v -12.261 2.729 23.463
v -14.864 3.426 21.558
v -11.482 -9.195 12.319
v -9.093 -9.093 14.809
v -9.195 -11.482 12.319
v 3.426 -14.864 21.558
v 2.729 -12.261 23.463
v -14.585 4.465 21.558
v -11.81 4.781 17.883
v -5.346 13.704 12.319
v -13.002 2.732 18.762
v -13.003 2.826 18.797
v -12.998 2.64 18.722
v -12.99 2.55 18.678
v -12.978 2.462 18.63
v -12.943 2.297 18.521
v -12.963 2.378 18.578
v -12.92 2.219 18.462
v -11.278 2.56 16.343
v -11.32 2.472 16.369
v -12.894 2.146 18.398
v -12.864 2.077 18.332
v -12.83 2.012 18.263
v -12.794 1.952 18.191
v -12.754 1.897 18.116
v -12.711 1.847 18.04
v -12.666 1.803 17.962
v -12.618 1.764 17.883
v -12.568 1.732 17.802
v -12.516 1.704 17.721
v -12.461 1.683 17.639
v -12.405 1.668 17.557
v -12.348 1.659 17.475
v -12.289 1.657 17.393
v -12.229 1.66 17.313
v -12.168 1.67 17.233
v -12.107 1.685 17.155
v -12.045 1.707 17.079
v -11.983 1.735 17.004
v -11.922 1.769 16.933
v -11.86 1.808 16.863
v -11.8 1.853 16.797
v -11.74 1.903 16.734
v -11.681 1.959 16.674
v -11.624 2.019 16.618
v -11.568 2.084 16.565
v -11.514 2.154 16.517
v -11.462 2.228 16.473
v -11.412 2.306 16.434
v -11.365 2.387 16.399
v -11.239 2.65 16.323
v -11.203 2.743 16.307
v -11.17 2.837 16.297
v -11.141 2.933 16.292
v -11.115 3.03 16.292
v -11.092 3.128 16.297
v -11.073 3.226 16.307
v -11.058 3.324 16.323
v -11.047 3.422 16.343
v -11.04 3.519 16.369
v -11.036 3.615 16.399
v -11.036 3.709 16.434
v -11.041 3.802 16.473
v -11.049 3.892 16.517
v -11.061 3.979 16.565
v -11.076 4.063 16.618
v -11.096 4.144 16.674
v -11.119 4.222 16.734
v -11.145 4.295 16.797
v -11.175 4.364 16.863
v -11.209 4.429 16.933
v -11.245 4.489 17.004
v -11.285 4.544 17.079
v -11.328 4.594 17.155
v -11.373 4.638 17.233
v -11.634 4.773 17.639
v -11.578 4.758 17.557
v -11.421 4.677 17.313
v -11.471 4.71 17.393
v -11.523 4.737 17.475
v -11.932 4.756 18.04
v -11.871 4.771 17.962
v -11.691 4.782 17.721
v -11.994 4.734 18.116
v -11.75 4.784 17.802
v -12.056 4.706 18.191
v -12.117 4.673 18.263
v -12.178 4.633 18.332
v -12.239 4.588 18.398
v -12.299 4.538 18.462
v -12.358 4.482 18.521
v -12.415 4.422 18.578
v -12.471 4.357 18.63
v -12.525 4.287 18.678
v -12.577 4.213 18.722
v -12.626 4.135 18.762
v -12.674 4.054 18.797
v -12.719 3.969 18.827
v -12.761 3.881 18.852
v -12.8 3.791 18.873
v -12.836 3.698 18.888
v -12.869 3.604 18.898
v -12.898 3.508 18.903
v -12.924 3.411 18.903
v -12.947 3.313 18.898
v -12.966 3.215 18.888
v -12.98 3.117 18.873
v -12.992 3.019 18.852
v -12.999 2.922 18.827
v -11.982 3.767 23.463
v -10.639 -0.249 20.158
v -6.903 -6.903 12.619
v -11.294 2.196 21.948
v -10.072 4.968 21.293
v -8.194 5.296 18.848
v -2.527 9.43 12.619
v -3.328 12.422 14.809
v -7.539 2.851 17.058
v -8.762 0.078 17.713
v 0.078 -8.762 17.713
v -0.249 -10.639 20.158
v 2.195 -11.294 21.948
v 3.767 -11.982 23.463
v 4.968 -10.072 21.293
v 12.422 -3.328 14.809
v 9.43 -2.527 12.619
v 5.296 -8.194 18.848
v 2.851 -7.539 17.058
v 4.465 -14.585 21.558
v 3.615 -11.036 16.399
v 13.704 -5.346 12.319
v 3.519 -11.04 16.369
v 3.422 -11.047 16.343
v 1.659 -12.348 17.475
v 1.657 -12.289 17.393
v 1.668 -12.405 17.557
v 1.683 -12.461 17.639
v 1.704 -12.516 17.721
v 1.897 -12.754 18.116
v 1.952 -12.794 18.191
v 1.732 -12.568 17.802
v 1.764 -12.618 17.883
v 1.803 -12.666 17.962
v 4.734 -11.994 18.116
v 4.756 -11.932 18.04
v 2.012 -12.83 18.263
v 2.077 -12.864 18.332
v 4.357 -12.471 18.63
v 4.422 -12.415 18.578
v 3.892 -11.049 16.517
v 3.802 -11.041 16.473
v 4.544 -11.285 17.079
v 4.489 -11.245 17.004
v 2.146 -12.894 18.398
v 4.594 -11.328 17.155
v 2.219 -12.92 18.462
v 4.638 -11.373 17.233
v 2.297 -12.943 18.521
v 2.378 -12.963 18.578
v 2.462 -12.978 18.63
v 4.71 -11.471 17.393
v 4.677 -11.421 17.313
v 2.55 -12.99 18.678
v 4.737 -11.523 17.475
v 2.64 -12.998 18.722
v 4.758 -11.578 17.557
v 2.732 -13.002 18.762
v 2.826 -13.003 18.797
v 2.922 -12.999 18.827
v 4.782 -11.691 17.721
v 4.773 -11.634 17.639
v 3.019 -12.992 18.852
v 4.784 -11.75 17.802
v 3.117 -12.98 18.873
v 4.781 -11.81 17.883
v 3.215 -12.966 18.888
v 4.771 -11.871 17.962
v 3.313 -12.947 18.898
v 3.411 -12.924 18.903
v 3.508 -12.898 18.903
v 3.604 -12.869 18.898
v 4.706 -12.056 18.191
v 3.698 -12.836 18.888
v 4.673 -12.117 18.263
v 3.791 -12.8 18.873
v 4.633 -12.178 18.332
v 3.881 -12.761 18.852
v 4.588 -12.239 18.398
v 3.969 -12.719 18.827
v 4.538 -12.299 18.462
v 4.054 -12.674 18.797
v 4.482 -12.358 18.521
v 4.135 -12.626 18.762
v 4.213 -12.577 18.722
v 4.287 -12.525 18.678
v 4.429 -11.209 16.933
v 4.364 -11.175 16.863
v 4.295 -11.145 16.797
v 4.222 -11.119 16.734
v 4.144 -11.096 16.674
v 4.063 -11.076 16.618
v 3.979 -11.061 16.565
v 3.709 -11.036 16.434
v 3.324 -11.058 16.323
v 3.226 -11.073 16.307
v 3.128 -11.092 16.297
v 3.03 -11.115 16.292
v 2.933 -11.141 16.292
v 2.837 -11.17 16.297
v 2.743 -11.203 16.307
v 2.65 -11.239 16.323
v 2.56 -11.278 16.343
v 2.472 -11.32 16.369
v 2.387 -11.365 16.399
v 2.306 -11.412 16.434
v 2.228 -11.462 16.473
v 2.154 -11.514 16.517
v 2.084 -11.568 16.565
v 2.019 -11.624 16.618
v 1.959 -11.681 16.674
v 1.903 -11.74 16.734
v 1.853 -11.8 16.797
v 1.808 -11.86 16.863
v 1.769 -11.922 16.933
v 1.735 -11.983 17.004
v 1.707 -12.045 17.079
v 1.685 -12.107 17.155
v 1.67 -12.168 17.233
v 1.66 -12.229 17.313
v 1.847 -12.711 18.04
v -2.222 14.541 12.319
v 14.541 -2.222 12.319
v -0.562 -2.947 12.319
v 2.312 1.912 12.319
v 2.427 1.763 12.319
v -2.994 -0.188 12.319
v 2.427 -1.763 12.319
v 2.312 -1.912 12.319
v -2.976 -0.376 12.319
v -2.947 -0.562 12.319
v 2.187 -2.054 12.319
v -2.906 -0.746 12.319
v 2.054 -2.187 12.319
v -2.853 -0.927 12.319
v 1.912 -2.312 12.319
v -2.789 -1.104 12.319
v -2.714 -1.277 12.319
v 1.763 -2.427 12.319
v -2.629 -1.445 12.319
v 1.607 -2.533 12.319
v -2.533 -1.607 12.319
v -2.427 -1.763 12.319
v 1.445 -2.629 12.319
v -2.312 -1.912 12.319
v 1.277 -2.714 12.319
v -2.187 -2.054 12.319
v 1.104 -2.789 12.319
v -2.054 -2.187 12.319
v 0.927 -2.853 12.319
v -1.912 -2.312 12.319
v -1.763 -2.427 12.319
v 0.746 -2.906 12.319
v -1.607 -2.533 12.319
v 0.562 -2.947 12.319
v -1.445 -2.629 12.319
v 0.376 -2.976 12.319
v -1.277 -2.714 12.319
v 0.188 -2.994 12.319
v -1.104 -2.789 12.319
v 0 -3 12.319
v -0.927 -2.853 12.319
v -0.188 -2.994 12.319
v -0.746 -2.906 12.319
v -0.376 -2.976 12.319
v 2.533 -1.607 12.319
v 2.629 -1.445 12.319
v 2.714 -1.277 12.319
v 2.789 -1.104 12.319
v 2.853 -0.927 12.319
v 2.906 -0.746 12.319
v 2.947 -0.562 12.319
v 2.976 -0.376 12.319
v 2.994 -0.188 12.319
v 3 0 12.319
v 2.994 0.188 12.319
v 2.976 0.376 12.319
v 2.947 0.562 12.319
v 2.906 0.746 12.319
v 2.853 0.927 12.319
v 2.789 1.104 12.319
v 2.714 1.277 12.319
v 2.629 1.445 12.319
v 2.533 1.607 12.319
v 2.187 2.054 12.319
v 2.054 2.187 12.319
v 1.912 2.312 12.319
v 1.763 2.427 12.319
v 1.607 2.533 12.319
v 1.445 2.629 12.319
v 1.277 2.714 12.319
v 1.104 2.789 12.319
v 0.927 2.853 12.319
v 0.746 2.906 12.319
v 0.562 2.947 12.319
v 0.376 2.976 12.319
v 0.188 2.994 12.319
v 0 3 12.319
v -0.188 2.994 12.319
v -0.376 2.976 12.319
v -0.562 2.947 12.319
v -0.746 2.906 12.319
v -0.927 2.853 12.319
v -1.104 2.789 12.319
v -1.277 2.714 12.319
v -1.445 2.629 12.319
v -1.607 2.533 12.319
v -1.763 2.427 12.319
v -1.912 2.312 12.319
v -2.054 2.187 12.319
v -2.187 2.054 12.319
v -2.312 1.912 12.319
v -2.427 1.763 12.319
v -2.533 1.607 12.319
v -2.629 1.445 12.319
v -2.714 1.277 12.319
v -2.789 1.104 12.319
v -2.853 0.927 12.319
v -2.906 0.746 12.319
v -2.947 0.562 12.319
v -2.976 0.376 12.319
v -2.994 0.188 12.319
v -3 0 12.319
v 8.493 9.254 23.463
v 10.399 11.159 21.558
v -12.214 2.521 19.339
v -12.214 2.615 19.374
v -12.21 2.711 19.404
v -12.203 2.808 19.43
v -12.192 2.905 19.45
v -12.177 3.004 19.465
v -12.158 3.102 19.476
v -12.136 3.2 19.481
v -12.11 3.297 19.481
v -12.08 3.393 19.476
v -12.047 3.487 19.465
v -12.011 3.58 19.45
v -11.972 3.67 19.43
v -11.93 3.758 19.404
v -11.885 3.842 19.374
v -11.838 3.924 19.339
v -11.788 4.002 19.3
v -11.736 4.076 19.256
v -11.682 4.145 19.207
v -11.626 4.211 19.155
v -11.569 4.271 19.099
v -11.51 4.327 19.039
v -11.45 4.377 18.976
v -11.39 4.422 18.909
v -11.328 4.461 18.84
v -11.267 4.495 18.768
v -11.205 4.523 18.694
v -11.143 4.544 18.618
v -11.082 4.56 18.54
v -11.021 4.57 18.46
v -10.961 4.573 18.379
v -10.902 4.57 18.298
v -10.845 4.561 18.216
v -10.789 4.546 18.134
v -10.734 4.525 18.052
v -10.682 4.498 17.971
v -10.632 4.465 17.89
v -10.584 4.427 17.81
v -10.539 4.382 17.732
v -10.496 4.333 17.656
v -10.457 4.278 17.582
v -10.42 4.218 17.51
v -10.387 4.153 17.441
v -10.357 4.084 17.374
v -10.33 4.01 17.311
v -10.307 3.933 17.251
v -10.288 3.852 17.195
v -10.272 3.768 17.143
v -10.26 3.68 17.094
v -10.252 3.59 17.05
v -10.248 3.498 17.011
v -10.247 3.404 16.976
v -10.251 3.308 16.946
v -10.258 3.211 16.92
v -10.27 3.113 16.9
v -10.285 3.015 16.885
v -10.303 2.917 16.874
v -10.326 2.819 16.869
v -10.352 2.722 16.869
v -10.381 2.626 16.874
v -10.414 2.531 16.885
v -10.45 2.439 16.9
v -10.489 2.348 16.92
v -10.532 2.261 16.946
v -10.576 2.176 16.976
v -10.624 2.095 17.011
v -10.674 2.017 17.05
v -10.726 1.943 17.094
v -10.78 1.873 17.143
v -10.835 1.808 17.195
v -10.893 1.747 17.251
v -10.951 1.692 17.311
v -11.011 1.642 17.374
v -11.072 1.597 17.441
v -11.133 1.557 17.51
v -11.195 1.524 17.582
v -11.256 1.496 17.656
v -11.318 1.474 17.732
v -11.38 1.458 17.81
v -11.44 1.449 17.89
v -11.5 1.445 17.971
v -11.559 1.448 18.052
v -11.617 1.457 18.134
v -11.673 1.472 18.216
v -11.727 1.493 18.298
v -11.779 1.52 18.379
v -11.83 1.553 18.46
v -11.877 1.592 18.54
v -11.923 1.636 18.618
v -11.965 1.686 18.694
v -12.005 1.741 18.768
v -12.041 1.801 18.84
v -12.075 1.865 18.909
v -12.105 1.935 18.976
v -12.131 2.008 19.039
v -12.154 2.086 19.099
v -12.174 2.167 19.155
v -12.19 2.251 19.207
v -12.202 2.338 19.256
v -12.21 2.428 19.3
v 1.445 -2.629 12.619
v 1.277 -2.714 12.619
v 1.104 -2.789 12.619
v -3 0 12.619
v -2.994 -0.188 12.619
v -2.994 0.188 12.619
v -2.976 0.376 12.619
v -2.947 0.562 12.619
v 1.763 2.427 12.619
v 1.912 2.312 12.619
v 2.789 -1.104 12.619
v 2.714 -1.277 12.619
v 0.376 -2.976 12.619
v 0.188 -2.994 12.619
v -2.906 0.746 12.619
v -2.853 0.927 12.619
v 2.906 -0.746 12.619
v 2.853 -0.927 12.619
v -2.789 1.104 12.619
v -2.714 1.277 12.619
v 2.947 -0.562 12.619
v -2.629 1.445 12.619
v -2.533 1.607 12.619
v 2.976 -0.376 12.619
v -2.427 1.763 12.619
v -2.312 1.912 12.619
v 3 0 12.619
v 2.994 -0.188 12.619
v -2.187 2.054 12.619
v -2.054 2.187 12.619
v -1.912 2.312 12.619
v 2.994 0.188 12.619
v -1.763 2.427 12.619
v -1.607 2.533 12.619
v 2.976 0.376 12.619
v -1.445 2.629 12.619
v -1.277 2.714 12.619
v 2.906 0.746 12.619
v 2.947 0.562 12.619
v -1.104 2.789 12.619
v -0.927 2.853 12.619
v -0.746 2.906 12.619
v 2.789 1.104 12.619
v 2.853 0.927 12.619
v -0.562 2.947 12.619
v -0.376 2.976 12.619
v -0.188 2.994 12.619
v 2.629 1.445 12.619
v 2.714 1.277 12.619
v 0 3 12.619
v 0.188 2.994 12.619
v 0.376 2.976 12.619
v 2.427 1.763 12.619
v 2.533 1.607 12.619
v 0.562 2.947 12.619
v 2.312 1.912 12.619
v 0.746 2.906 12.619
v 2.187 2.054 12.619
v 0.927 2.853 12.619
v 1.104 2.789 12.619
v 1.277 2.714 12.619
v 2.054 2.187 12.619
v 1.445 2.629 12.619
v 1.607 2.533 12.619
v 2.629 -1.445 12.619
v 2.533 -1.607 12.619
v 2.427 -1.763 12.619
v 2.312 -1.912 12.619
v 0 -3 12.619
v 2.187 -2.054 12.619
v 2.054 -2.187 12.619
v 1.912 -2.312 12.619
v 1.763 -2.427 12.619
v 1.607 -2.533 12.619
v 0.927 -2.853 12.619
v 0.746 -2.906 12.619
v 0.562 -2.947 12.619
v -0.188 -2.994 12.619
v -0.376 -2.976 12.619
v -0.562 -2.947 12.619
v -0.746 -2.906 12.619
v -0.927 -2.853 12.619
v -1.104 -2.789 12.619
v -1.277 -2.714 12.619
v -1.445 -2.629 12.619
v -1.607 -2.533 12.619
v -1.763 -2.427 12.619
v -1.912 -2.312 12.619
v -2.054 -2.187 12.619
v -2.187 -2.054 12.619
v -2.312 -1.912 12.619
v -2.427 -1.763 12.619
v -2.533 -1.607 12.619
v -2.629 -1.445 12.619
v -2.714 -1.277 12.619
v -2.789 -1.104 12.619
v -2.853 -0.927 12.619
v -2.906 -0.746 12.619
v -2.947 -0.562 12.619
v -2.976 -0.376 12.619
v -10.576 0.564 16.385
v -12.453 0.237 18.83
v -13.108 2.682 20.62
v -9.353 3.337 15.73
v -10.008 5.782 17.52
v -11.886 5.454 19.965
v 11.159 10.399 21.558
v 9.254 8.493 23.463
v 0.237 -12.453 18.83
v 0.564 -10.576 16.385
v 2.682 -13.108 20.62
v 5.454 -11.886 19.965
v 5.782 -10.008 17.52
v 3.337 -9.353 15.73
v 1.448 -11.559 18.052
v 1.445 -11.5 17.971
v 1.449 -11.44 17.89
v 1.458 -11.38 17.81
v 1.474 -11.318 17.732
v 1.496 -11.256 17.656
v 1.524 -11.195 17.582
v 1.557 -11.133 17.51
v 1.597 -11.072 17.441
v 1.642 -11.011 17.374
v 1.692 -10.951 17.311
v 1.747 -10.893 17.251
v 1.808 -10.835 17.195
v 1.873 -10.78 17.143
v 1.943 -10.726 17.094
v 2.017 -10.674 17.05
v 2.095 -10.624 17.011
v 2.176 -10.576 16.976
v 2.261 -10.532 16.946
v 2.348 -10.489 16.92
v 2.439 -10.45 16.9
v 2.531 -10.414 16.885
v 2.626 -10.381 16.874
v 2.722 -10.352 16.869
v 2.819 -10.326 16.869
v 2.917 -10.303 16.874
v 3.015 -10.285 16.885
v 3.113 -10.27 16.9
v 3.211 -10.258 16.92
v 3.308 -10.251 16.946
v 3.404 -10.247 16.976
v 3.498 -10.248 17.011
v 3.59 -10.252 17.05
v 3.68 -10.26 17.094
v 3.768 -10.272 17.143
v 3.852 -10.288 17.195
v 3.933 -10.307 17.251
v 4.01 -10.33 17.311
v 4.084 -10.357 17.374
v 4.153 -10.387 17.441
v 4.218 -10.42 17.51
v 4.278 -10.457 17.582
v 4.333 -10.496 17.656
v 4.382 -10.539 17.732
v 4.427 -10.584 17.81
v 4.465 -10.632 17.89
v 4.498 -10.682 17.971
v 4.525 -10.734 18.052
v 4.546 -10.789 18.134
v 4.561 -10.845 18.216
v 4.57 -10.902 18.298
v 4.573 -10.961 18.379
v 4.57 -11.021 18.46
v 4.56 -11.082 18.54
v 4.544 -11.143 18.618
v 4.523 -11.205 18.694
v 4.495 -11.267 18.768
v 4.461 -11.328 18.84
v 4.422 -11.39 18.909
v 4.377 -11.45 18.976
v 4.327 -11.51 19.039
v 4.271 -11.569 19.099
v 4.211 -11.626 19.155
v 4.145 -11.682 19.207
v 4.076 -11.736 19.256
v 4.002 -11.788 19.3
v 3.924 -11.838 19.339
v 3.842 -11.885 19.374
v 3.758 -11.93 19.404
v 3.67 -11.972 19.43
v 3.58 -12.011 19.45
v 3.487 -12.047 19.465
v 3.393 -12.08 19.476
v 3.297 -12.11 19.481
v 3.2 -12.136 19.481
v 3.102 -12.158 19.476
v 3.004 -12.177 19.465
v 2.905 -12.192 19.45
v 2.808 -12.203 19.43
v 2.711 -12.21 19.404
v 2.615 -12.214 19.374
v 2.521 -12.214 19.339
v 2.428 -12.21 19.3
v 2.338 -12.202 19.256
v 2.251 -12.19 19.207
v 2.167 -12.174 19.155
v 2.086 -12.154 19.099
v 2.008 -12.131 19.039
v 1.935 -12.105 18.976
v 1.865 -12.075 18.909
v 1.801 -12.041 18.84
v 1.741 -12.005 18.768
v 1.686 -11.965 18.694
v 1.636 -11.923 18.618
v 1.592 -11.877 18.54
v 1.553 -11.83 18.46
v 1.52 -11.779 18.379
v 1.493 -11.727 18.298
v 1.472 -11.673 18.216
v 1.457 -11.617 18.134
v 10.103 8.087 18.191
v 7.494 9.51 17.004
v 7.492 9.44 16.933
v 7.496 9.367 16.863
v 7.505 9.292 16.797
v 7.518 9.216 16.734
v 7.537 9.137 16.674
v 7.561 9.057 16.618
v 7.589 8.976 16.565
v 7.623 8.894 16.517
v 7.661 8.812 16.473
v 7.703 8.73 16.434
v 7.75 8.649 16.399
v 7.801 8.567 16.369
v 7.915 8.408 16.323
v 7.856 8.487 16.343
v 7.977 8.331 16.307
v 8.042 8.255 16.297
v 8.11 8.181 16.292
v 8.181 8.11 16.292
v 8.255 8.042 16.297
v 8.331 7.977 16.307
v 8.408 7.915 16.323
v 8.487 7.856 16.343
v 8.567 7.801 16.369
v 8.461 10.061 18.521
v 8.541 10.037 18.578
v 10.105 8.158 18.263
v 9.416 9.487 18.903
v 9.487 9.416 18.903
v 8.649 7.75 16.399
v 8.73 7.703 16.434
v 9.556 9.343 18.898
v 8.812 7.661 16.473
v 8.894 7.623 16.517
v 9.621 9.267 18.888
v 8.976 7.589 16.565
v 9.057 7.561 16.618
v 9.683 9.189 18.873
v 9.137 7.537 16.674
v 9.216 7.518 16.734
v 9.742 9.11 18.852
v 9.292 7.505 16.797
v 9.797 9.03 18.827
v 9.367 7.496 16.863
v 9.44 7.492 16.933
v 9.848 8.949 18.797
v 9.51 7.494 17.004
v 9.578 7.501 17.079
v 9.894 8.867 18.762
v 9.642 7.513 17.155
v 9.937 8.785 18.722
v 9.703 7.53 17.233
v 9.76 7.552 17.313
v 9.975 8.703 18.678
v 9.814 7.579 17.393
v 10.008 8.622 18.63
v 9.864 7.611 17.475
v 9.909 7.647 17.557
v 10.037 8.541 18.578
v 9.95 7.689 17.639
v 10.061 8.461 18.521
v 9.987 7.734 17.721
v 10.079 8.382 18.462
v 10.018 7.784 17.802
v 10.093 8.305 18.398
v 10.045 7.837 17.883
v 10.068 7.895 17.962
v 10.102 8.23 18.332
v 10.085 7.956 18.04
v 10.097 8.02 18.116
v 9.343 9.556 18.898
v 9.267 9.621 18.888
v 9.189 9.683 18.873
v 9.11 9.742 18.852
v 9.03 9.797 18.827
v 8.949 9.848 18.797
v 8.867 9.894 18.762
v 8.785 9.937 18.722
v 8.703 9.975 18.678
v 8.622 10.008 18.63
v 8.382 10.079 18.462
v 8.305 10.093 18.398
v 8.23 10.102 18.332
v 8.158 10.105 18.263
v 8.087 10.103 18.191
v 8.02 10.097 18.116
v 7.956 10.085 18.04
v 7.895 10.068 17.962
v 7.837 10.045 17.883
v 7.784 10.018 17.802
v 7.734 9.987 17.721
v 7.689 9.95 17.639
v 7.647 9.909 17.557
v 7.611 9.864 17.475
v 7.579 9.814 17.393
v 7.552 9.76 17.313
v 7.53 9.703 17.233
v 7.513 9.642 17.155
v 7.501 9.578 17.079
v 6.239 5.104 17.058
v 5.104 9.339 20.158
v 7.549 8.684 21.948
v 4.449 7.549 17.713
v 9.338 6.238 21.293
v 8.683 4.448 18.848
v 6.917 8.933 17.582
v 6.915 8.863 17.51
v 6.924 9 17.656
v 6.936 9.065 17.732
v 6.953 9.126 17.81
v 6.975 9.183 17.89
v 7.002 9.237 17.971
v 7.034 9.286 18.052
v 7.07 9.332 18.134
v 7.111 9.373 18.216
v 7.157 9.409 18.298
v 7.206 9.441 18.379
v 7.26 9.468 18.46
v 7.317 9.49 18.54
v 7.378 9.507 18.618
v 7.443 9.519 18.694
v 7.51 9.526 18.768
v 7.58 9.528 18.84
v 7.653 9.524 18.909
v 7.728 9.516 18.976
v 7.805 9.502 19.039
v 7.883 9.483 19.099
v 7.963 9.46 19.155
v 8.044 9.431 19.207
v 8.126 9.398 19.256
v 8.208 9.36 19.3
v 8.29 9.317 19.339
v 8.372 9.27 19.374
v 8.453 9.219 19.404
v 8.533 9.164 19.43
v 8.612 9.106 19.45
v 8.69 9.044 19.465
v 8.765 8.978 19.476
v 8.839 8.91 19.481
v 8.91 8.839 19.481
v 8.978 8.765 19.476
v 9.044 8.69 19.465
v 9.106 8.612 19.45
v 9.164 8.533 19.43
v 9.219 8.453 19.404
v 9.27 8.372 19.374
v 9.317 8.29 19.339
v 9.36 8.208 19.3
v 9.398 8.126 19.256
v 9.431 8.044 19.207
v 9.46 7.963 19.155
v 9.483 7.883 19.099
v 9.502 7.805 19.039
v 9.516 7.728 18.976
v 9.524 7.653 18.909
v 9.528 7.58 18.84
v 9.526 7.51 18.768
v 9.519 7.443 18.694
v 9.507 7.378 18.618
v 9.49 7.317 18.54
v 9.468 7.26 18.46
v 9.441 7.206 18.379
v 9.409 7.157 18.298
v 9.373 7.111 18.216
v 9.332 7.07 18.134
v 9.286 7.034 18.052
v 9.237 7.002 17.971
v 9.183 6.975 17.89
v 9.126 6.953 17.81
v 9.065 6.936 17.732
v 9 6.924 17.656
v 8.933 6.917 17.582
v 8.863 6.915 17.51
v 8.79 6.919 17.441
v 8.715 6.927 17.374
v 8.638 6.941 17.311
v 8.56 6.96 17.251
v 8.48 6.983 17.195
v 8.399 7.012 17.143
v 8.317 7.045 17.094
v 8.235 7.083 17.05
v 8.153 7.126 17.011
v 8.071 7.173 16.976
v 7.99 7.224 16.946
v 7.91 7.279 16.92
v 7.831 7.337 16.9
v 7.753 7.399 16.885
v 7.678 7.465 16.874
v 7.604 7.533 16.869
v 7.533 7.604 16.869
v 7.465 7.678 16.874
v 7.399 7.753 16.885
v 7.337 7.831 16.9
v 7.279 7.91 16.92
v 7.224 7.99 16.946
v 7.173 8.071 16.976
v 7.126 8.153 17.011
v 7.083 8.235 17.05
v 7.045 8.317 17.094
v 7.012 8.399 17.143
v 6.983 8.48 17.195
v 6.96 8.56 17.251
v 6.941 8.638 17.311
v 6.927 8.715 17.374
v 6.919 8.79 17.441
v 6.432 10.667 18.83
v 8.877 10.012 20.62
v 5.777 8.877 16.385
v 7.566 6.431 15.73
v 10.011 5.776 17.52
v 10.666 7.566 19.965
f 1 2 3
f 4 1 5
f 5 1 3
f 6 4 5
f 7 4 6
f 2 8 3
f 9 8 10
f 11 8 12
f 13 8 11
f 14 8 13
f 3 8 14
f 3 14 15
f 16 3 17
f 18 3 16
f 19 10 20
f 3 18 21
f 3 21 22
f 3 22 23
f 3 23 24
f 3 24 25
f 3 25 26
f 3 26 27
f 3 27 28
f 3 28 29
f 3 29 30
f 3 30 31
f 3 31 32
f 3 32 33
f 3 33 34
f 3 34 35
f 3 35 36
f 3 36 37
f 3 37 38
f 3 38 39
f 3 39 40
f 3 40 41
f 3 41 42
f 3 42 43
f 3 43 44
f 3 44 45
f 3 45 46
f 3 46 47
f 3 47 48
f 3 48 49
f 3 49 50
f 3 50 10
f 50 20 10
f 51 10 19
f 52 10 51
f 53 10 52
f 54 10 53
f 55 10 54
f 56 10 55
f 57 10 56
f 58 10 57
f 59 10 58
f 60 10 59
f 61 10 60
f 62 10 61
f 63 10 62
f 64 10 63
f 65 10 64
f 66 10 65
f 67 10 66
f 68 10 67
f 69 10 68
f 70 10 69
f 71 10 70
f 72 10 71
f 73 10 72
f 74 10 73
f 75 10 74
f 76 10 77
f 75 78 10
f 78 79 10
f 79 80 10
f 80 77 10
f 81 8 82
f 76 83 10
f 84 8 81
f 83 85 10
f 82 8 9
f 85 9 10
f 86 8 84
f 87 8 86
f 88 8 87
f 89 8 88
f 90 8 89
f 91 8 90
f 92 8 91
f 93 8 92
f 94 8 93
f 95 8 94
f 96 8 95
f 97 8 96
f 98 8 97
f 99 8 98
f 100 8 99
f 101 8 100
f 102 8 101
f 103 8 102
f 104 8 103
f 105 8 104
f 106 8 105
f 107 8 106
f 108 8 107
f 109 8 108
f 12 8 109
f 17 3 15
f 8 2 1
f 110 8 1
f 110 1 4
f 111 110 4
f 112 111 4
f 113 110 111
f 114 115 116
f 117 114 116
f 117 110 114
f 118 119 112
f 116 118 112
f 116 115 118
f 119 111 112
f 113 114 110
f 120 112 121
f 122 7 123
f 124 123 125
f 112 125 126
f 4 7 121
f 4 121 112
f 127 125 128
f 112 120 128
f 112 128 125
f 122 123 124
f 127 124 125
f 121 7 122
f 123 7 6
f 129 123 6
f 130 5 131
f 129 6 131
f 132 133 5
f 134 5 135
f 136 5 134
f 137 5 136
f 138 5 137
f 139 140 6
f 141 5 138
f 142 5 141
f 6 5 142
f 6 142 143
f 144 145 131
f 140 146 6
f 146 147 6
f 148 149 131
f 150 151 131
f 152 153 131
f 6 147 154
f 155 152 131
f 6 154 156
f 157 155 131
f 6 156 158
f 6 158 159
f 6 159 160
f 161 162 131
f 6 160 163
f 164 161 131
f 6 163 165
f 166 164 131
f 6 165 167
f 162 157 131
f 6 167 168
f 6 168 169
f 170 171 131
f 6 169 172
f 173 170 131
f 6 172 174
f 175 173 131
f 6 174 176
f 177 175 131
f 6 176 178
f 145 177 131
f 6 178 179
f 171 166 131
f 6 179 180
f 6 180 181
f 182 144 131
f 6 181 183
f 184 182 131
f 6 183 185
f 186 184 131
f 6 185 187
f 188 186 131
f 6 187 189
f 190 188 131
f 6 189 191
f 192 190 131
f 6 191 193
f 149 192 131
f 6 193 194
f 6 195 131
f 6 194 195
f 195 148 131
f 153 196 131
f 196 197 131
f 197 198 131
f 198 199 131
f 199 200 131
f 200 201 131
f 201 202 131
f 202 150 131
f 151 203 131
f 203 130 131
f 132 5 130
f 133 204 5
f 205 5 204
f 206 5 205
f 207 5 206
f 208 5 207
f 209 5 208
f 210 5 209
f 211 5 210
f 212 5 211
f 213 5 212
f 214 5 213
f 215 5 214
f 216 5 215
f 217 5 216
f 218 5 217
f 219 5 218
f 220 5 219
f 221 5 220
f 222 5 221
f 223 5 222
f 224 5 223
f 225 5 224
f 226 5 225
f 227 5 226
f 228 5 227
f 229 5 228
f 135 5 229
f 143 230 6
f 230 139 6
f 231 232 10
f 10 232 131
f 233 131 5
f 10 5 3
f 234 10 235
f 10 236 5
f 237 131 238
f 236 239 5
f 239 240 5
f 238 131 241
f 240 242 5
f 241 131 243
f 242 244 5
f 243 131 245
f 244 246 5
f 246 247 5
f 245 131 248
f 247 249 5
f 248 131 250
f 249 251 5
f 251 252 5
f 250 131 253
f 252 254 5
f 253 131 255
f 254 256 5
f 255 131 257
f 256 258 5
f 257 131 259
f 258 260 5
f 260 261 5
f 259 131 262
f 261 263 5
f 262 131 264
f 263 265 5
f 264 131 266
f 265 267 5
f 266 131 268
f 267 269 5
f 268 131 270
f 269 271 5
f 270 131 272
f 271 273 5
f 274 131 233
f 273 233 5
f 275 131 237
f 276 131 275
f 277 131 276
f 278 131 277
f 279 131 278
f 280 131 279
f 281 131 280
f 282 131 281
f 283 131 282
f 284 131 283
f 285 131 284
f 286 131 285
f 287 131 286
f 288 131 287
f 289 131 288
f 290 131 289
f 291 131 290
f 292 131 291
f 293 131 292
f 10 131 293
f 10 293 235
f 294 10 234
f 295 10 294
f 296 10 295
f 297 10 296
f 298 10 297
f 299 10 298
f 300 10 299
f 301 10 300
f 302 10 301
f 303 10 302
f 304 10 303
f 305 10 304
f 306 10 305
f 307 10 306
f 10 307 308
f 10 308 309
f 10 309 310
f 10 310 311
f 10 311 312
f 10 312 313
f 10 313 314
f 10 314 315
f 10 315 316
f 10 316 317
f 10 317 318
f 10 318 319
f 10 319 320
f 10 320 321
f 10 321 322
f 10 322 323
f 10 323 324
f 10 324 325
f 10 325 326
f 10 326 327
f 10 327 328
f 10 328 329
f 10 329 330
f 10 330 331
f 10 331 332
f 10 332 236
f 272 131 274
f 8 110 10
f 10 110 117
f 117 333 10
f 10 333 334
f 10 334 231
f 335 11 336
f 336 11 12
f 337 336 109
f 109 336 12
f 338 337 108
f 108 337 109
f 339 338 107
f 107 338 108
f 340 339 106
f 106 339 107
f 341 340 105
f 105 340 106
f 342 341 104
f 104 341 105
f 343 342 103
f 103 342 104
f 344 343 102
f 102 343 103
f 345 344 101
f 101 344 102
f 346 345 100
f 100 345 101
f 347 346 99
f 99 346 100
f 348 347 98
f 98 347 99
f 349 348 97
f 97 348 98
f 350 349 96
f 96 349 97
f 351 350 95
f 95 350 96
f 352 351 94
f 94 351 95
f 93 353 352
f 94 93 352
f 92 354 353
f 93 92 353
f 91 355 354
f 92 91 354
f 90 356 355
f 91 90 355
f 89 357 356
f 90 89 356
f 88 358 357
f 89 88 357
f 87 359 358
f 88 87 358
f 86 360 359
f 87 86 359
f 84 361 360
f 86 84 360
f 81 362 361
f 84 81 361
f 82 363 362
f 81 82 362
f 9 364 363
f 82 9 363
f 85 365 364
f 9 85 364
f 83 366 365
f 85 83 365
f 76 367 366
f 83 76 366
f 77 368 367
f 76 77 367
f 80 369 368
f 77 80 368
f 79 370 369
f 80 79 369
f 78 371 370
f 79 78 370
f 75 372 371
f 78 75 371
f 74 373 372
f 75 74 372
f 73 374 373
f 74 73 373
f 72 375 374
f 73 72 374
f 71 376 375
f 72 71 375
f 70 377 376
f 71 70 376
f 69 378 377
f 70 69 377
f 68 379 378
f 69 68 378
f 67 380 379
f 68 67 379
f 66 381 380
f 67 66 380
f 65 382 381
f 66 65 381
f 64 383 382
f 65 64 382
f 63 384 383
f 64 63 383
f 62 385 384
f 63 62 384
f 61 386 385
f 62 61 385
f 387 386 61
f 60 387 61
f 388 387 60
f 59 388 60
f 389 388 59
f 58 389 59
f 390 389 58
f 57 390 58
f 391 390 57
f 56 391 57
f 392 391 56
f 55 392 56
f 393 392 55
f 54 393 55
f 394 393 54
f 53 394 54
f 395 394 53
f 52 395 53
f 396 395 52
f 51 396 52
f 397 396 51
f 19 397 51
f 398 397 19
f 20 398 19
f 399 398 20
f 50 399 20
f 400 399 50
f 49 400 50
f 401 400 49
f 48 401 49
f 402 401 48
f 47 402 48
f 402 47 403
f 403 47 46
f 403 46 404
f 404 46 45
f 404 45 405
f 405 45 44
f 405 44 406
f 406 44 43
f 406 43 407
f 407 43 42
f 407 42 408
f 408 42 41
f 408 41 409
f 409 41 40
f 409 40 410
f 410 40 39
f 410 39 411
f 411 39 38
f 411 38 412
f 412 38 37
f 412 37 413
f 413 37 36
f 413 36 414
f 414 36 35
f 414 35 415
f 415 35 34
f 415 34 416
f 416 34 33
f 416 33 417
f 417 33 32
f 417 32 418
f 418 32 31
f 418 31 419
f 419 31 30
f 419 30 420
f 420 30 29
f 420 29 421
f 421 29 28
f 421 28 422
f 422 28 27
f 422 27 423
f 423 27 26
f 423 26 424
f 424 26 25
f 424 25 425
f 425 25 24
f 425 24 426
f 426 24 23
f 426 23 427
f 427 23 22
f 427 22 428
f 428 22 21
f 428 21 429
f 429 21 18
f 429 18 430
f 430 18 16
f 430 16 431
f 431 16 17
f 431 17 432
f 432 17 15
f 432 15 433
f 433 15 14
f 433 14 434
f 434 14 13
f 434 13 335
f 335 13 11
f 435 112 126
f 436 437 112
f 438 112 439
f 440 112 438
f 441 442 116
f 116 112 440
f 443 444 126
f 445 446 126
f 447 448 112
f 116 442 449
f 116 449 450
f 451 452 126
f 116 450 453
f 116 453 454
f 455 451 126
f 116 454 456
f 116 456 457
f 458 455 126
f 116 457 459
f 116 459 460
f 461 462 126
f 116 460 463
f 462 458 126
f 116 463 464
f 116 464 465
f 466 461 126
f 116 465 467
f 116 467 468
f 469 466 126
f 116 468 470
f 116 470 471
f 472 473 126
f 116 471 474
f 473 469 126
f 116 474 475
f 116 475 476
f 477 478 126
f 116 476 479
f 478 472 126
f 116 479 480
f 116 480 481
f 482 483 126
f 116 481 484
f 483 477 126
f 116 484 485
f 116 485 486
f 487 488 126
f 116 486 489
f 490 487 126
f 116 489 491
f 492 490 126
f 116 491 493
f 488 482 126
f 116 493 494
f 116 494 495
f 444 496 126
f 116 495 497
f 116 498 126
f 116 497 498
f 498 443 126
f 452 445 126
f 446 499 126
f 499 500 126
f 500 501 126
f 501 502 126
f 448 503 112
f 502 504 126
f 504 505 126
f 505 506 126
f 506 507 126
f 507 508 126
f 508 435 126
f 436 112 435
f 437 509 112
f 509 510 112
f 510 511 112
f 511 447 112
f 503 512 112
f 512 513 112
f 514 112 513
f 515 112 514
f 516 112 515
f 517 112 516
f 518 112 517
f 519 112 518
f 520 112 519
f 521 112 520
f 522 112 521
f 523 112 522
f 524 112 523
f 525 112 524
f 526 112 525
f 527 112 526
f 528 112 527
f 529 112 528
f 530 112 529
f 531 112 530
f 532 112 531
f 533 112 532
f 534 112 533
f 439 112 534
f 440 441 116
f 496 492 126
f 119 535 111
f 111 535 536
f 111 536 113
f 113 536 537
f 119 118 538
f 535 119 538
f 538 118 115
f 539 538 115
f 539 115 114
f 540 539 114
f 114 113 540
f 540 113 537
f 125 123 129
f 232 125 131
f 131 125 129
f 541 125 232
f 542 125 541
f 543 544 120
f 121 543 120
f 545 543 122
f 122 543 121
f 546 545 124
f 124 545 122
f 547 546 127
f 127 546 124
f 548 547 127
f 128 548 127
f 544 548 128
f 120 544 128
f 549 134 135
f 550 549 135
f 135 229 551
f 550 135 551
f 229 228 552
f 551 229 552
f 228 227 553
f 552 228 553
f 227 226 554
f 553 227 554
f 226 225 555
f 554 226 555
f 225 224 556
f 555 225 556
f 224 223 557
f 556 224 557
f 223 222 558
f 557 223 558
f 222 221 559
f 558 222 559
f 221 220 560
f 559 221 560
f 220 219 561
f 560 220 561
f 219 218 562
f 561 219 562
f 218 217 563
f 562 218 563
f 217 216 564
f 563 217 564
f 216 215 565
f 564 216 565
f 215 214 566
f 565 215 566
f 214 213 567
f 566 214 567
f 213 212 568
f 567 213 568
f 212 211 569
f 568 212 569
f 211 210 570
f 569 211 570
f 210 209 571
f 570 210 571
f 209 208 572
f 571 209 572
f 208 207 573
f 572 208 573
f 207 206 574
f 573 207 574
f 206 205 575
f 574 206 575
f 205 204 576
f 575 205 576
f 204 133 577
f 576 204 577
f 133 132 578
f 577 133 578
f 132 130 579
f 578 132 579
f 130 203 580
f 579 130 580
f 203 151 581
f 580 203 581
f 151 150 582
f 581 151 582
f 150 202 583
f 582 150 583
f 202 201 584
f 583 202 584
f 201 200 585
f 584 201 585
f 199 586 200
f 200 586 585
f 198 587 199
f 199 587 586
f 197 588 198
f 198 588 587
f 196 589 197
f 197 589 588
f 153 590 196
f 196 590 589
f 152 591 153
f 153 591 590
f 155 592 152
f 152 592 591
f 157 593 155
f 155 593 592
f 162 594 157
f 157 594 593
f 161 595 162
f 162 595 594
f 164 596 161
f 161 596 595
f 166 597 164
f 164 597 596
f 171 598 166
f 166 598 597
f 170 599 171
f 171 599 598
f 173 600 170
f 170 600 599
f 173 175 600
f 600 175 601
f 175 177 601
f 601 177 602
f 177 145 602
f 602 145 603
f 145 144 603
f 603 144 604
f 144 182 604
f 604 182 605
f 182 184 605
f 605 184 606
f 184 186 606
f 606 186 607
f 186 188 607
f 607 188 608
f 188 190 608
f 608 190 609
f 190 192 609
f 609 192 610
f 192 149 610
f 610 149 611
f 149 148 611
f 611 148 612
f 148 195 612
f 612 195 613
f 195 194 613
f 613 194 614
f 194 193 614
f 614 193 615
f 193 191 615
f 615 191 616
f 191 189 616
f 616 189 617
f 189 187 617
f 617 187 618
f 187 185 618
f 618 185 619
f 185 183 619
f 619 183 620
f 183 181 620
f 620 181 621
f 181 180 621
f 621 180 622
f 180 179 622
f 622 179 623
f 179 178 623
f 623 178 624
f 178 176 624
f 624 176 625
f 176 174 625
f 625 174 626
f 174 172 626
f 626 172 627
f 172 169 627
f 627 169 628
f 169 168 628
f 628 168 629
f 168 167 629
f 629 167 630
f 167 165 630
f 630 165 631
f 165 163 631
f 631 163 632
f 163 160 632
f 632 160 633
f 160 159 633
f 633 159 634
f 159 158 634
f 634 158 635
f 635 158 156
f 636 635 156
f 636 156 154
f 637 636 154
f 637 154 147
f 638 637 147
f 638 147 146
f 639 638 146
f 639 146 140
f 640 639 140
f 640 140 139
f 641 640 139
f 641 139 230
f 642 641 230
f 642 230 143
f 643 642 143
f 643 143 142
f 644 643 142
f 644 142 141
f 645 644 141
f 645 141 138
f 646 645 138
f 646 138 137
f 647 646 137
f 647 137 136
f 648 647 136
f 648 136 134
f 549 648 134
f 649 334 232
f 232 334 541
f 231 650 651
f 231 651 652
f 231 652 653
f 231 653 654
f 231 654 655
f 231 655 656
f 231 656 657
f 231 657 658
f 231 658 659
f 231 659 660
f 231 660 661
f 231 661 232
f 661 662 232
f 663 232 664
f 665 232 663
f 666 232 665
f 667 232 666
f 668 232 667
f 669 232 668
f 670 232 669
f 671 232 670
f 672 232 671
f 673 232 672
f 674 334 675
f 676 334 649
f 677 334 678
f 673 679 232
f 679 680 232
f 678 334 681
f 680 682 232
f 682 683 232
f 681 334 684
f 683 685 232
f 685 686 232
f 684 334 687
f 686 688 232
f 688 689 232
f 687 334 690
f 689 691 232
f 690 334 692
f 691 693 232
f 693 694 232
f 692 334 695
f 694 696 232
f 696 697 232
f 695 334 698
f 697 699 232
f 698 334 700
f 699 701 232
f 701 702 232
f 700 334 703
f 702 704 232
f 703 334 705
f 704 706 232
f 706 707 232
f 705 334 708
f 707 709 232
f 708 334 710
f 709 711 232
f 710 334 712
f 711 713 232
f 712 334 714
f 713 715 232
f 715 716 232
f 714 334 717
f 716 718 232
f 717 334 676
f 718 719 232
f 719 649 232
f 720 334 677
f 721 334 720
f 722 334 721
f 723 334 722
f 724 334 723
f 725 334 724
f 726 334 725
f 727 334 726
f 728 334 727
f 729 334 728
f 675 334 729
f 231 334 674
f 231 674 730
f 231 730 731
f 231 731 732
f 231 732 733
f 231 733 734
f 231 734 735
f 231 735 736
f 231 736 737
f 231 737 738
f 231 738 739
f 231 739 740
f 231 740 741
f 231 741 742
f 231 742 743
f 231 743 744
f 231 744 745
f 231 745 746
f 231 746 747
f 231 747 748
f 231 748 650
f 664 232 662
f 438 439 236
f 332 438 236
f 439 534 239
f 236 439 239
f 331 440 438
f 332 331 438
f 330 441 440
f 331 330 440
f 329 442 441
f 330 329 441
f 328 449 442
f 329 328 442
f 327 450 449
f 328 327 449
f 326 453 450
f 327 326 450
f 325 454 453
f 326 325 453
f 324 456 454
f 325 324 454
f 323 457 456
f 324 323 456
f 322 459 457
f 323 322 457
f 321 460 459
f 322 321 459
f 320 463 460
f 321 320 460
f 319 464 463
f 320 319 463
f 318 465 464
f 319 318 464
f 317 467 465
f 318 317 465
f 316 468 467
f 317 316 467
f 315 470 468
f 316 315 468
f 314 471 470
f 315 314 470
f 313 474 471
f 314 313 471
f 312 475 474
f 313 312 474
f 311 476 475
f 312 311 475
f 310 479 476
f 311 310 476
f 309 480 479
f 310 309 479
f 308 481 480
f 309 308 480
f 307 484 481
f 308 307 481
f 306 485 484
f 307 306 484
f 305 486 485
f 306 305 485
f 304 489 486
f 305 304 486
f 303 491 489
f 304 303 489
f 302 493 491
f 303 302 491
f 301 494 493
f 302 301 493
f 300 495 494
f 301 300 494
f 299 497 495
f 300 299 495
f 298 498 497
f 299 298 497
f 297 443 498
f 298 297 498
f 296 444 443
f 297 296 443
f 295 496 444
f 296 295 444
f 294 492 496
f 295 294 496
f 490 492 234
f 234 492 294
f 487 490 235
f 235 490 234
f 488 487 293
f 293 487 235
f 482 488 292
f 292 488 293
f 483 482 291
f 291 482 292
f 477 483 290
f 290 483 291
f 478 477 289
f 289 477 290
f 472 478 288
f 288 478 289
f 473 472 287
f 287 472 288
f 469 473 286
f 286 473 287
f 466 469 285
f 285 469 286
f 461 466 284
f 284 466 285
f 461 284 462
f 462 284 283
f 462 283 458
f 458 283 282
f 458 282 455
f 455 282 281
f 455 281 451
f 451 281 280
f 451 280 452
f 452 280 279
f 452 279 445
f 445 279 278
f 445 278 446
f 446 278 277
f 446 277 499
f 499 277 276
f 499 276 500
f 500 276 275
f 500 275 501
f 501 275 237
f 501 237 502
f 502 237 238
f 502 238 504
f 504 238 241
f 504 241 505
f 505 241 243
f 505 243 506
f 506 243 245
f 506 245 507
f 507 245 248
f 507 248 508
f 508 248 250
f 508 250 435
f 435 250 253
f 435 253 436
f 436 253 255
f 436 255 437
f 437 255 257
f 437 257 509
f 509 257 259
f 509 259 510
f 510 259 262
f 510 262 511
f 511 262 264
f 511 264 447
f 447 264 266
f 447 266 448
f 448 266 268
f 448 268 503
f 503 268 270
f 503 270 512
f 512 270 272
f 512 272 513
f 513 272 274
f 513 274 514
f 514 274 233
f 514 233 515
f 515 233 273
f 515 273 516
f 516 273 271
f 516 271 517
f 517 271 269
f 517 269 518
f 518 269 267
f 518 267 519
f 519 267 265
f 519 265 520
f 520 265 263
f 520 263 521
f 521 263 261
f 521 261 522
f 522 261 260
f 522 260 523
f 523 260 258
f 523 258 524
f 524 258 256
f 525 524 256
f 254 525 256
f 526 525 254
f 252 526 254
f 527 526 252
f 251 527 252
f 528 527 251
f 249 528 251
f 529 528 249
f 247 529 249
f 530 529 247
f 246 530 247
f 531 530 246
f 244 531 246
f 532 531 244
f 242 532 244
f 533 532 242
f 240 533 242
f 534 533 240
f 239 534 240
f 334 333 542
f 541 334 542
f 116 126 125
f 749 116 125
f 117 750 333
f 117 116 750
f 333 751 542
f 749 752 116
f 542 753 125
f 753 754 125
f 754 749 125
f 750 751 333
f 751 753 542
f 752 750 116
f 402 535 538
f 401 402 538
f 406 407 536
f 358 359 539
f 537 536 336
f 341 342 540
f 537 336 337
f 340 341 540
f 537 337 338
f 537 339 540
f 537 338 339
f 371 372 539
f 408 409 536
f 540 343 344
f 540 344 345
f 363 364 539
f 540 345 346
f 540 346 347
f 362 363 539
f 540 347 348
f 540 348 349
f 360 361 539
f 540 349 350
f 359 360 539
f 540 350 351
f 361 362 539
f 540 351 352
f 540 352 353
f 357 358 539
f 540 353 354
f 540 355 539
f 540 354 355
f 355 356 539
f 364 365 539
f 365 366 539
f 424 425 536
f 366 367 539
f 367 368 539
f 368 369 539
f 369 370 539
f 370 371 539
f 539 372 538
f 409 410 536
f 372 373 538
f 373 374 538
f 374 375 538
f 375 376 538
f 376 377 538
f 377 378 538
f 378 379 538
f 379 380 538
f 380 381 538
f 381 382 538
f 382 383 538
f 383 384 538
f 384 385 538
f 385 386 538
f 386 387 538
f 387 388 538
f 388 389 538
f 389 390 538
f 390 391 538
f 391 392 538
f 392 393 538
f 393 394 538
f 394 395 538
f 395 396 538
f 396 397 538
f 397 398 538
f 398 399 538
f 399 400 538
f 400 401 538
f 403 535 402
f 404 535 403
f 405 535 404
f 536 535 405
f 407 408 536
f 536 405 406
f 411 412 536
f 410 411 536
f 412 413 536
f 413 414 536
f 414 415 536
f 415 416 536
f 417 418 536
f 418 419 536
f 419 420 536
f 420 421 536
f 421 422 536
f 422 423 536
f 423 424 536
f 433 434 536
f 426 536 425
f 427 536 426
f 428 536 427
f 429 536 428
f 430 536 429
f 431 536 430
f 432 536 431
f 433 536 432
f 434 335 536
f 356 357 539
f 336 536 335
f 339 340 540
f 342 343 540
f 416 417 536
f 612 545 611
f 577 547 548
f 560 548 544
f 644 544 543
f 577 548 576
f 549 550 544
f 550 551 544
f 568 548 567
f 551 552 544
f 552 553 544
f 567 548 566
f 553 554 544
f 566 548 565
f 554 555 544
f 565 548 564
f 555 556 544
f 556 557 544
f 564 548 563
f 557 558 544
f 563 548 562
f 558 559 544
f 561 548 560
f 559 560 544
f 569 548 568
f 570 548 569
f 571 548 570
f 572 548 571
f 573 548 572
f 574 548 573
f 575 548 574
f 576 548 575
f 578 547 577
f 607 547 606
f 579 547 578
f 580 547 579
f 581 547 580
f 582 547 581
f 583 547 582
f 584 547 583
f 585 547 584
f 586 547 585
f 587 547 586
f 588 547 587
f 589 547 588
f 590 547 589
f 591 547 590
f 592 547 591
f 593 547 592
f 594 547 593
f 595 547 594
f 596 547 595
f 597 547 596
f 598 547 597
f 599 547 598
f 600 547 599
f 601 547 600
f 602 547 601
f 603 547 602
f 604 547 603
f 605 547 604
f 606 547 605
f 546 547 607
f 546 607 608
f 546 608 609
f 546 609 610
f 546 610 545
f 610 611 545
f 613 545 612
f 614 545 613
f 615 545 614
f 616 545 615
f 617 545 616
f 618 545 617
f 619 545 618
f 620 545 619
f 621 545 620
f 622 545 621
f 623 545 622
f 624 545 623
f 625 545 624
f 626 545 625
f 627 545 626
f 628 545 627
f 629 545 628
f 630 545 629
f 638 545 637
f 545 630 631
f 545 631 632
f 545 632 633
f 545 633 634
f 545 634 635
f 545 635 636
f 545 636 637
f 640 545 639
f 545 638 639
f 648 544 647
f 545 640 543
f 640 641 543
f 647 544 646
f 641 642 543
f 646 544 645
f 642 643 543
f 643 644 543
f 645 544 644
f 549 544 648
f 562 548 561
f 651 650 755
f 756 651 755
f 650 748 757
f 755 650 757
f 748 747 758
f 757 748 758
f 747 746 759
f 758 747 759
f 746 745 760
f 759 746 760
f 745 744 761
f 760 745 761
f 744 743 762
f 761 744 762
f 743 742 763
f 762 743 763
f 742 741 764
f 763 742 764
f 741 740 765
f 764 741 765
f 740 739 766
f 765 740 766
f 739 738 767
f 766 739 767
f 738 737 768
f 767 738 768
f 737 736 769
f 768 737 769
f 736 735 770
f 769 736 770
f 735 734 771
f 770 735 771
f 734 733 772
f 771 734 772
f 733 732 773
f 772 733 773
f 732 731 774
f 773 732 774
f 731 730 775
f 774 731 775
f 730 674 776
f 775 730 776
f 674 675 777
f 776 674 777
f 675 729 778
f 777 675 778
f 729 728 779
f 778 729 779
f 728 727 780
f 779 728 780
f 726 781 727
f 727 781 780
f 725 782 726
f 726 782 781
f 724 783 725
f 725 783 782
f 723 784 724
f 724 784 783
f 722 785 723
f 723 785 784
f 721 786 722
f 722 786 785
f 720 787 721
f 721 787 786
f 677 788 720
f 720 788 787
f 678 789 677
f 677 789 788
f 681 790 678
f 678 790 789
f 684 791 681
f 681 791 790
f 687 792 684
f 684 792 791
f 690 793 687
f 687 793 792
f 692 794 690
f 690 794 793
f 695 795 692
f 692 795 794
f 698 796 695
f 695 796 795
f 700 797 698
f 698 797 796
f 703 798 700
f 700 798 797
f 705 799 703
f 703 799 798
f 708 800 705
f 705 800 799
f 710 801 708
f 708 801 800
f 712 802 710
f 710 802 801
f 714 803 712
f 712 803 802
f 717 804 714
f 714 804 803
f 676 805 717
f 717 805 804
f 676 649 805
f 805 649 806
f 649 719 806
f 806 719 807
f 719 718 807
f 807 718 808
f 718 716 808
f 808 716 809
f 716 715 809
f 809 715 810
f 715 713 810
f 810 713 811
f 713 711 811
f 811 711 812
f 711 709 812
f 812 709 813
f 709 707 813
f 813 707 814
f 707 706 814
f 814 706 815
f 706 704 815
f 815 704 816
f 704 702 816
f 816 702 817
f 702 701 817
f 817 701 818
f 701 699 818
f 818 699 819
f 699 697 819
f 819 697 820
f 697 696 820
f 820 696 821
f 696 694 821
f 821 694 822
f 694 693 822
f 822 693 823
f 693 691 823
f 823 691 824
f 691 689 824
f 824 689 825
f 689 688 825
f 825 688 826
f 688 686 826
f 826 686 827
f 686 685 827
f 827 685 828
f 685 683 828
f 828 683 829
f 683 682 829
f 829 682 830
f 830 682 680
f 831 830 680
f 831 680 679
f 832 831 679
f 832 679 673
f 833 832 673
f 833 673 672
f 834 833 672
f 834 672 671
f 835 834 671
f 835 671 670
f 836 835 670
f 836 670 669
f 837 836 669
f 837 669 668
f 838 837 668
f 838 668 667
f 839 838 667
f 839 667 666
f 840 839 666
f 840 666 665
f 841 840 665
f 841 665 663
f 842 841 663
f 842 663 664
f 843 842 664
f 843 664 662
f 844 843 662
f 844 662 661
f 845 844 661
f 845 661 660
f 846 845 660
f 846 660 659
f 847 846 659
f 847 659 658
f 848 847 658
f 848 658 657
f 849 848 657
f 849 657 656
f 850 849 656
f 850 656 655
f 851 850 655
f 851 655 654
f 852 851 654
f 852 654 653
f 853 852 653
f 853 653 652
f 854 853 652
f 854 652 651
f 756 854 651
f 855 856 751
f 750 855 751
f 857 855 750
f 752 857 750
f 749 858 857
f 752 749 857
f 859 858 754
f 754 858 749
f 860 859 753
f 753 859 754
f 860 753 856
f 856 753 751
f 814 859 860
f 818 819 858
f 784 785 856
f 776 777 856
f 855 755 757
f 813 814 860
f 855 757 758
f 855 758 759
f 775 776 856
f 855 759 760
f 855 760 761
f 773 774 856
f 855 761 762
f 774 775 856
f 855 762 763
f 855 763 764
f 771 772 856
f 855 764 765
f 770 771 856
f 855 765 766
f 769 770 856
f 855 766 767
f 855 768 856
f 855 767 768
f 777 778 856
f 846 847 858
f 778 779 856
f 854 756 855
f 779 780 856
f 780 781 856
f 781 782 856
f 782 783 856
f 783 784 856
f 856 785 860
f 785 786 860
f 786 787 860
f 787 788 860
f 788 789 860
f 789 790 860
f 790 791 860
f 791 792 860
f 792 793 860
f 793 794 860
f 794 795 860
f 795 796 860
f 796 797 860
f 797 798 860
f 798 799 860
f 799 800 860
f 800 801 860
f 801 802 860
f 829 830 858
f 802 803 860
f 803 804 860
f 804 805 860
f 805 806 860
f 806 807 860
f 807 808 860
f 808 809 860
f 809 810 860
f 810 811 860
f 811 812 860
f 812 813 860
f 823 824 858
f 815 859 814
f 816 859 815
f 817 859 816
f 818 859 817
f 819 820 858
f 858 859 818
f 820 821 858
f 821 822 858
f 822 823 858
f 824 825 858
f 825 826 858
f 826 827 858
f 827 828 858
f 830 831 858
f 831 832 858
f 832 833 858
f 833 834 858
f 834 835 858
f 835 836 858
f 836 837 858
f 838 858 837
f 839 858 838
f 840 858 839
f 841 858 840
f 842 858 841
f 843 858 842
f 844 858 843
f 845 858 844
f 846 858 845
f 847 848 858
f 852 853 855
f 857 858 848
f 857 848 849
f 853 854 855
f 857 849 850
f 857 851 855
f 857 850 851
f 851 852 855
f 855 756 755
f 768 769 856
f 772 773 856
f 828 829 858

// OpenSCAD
// file: lada.scad
$fn=100;

mm = 1;
inch = 25.4 * mm;

LENGTH = .75 * inch;
EDGE_WIDTH = .5 * inch;
THICKNESS = .2 * inch;

MATERIAL_THICKNESS = 3 * mm;
OFFSET = .4 * inch;

HEX_R = 6.2 * mm / 2;
HEX_r = 5.6 * mm / 2;
HEX_THICKNESS = 2.3 * mm; 

PCB_L = 5 * inch;
PCB_W = 5 * inch;
PCB_H = 2 * mm;

//HEX_THICKNESS = 1.5 * mm; // for thin version
//THICKNESS = 3 * mm; // for thin version

SCREW_R = 1.6 * mm;
module hex(){
  linear_extrude(height=HEX_THICKNESS * 2, center=false) circle(r=HEX_R, $fn=6);
}
module hex_old(){
  difference(){
    cylinder(r=HEX_R, h=HEX_THICKNESS);
    for(i=[0, 1, 2, 3, 4, 5]){
      rotate(a=60 * i, v=[0, 0, 1])
	translate([HEX_r, -5, 5])rotate(a=90, v=[0, 1, 0])cube([10, 10, HEX_THICKNESS]);
    }
  }
}

TAB_HEIGHT = .5*mm;
TAB_R = 5*mm;
// tab to prevent rollup
module tab(x, y){
  translate([x, y])cylinder(r=TAB_R, h=TAB_HEIGHT);
}

module edge(length, thickness, offset){
  LENGTH = length;
  THICKNESS = thickness;
  OFFSET = offset;
  difference(){
    union(){
      difference(){
	cube([OFFSET, EDGE_WIDTH, OFFSET]);
	translate([THICKNESS, -.01 * EDGE_WIDTH/2, THICKNESS])scale([1, 1.01, 1])cube([LENGTH, EDGE_WIDTH, LENGTH]);
      }
      union(){
	translate([OFFSET, EDGE_WIDTH/2, 0])cylinder(r=EDGE_WIDTH / 2, h=THICKNESS);
	translate([0, EDGE_WIDTH/2, OFFSET])rotate(v=[0, 1, 0], a=90)cylinder(r=EDGE_WIDTH / 2, h=THICKNESS);
      }
    }
    translate([OFFSET, EDGE_WIDTH/2, 0])cylinder(r=SCREW_R, h=THICKNESS * 1.1);
    translate([-.01, EDGE_WIDTH/2, OFFSET])rotate(v=[0, 1, 0], a=90)cylinder(r=SCREW_R, h=THICKNESS * 10);
  }
}

module pcb(){
  cube([PCB_L, PCB_W, PCB_H]);
}

module inside_edge(length, thickness, offset){
  LENGTH = length;
  THICKNESS = thickness;
  OFFSET = offset;
  difference(){
    edge(length, thickness, offset);
    //translate([.2 * inch - 1*mm, EDGE_WIDTH/2 + PCB_H/2, .2 * inch - 1*mm])rotate(v=[-1, 0, 0], a=-90)translate([THICKNESS * 3/4, -1, THICKNESS])pcb();
    translate([OFFSET, EDGE_WIDTH/2, THICKNESS - HEX_THICKNESS])scale([1, 1, 1.01])hex();
    translate([THICKNESS - HEX_THICKNESS, EDGE_WIDTH/2, OFFSET])rotate(v=[0, 1, 0], a=90)scale([1, 1, 1.01])hex();
  }
}
module outside_edge(length, thickness, offset){
  difference(){
    edge(length, thickness, offset);
    translate([OFFSET, EDGE_WIDTH/2, 0])scale([1, 1, 1.01])cylinder(r=HEX_R * 1.1, h=HEX_THICKNESS);
    translate([0, EDGE_WIDTH/2, OFFSET])scale([1, 1, 1.01])rotate(v=[0, 1, 0], a=90)cylinder(r=HEX_R * 1.1, h=HEX_THICKNESS);
  }
}

module corner(length, thickness, offset){
  echo("offset", offset);
  LENGTH = length;
  THICKNESS = thickness;
  OFFSET = offset;
  union(){
    //tab(0, 0);
    //tab(LENGTH, 0);
    //tab(0, LENGTH);

    intersection(){
      difference(){
	cube(LENGTH);
	translate([THICKNESS, THICKNESS, THICKNESS])
	  cube(LENGTH);
	translate([OFFSET, OFFSET, 0])
	  translate([0, 0, -1])
	  cylinder(r=SCREW_R, h=2 * THICKNESS);
	translate([OFFSET, 0, OFFSET])
	  rotate(v=[-1, 0, 0], a=90) 
	  translate([0, 0, -1])
	  cylinder(r=SCREW_R, h=2 * THICKNESS);
	translate([0, OFFSET, OFFSET])
	  rotate(v=[0, 1, 0], a=90)
	  translate([0, 0, -1])
	  cylinder(r=SCREW_R, h=2 * THICKNESS);
      }
      
      union(){
	rotate(v=[0, 0, -1], a=0)cylinder(r=LENGTH*1.04, h=THICKNESS);
	rotate(v=[-1,0, 0], a=90)cylinder(r=LENGTH*1.04, h=THICKNESS);
	rotate(v=[0, 1, 0], a=90)cylinder(r=LENGTH*1.04 , h=THICKNESS);
      }
      // sphere(r=LENGTH);
    }
  }
}

module inside_corner(length, thickness, offset, standoff_h=10*mm){
  LENGTH = length;
  THICKNESS = thickness;
  OFFSET = offset;

  // translate([THICKNESS, THICKNESS, THICKNESS])cube(standoff_h*mm);
  difference(){
    corner(LENGTH, THICKNESS, OFFSET);
    translate([OFFSET, OFFSET, THICKNESS - HEX_THICKNESS])scale([1, 1, 100])hex();
    translate([OFFSET, THICKNESS - HEX_THICKNESS,  OFFSET])
      rotate(v=[-1, 0, 0], a=90)
      scale([1, 1, 100])
      hex();
    translate([THICKNESS - HEX_THICKNESS, OFFSET,  OFFSET])
      rotate(v=[1, 0, 0], a=30) // correct one!
      rotate(v=[0, 1, 0], a=90) // correct one!
      scale([1, 1, 100]) hex();
    // translate([THICKNESS * 2/4, THICKNESS * 2/4, THICKNESS + standoff_h])pcb();
  }
}
module outside_corner(length, thickness, offset, material_thickness){
  LENGTH = length + (material_thickness + thickness) * sqrt(2);
  THICKNESS = thickness;
  OFFSET = offset + material_thickness + thickness;
  echo("OFFSET", OFFSET);
  difference(){
    union(){
      corner(LENGTH, THICKNESS, OFFSET);
    }

    // counter bore
    translate([OFFSET,  HEX_THICKNESS, OFFSET])
      rotate(v=[1, 0, 0], a=90)
      rotate(v=[0, 0, 1], a=180)
      scale([1, 1, 100])
      cylinder(r=HEX_R * 1.1);
    translate([HEX_THICKNESS, OFFSET, OFFSET])
      rotate(v=[0, -1, 0], a=90)
      scale([1, 1, 100])
      cylinder(r=HEX_R * 1.1);
    translate([OFFSET,  OFFSET, HEX_THICKNESS, ])
      rotate(v=[0, 1, 0], a=180)
      scale([1, 1, 100])
      cylinder(r=HEX_R * 1.1);
  }
}
/* used for a specialized screen holder for photo booth */
module screen_clip(span, screen_h, overhang){
  difference(){
    union(){
      edge(LENGTH, THICKNESS, OFFSET);
      translate([OFFSET, 0, 0])cube([span, EDGE_WIDTH, THICKNESS]);
      translate([OFFSET + span - THICKNESS, 0, 0])cube([THICKNESS, EDGE_WIDTH, screen_h + THICKNESS]);
      translate([OFFSET + span - THICKNESS, 0, screen_h])cube([overhang + THICKNESS, EDGE_WIDTH, THICKNESS]);
    }
    union(){
      translate([OFFSET, EDGE_WIDTH/2, THICKNESS - HEX_THICKNESS])scale([1, 1, 1.01])hex();
      translate([THICKNESS - HEX_THICKNESS, EDGE_WIDTH/2, OFFSET])rotate(v=[0, 1, 0], a=90)scale([1, 1, 1.01])hex();
      translate([OFFSET, EDGE_WIDTH/2, 0])cylinder(r=SCREW_R, h=THICKNESS * 1.1);
    }
  }
}

module double_corner(span){
  // for use when two individual corners will not fit.  Span is inside distance between opposite faces.
  intersection(){
    difference(){
      cube([LENGTH, LENGTH, span]);
      translate([THICKNESS, THICKNESS, THICKNESS])cube([LENGTH, LENGTH, span - 2 * THICKNESS]);
      translate([OFFSET, OFFSET, 0])
	translate([0, 0, -1])
	cylinder(r=SCREW_R, h=2 * THICKNESS + span);
      translate([OFFSET, 0, span/2])
	rotate(v=[-1, 0, 0], a=90) 
	translate([0, 0, -1])
	cylinder(r=SCREW_R, h=2 * THICKNESS);
      translate([0, OFFSET, span/2])
	rotate(v=[0, 1, 0], a=90)
	translate([0, 0, -1])
	cylinder(r=SCREW_R, h=2 * THICKNESS);
      translate([OFFSET, OFFSET, THICKNESS - HEX_THICKNESS])hex();
      translate([OFFSET, OFFSET, span - HEX_THICKNESS - THICKNESS])hex();
    translate([OFFSET, THICKNESS - HEX_THICKNESS,  span/2])
      rotate(v=[-1, 0, 0], a=90)
      scale([1, 1, 100])
      hex();
    translate([THICKNESS - HEX_THICKNESS, OFFSET,  span/2])
      rotate(v=[1, 0, 0], a=30) // correct one!
      rotate(v=[0, 1, 0], a=90) // correct one!
      scale([1, 1, 100]) hex();

    }
    cylinder(r=LENGTH, h=40 * mm);
  }
}
// double_corner(35*mm);
// translate([0, MATERIAL_THICKNESS + THICKNESS, MATERIAL_THICKNESS + THICKNESS])inside_corner(LENGTH, THICKNESS, OFFSET); // corner
// translate([-MATERIAL_THICKNESS - THICKNESS, 0, 0])
// outside_corner(LENGTH, THICKNESS, OFFSET, MATERIAL_THICKNESS);

// translate([0, -1*inch, 0])inside_corner(LENGTH, THICKNESS, OFFSET);
// translate([0, 1*inch + 13, 0])rotate(v=[0, 0, 1], a=-90)inside_corner(LENGTH, THICKNESS, OFFSET);
// inside_edge(LENGTH, THICKNESS, OFFSET);
// main file
include <lada.scad>

difference(){
  rotate(a=acos(([1, 1, 1] * [0, 0, 1]) / sqrt(3)), v=cross([1, 1, 1] / sqrt(3), [0, 0, 1]))
    intersection(){
    inside_corner(1*inch, 3.3*mm, 0.6*inch, standoff_h=200);
    cube(.75*inch);
  }
  translate([-5*inch, -5*inch, 0])cube([10*inch, 10*inch, .485*inch]);
}

difference(){
  intersection(){
    rotate(a=acos(([1, 1, 1] * [0, 0, 1]) / sqrt(3)), v=cross([1, 1, 1] / sqrt(3), [0, 0, 1]))    cube(.75*inch);
    translate([-5*inch, -5*inch, .485*inch])cube([10*inch, 10*inch, .3*mm]);
  }
  cylinder(d=6*mm, h=100*mm);
}
